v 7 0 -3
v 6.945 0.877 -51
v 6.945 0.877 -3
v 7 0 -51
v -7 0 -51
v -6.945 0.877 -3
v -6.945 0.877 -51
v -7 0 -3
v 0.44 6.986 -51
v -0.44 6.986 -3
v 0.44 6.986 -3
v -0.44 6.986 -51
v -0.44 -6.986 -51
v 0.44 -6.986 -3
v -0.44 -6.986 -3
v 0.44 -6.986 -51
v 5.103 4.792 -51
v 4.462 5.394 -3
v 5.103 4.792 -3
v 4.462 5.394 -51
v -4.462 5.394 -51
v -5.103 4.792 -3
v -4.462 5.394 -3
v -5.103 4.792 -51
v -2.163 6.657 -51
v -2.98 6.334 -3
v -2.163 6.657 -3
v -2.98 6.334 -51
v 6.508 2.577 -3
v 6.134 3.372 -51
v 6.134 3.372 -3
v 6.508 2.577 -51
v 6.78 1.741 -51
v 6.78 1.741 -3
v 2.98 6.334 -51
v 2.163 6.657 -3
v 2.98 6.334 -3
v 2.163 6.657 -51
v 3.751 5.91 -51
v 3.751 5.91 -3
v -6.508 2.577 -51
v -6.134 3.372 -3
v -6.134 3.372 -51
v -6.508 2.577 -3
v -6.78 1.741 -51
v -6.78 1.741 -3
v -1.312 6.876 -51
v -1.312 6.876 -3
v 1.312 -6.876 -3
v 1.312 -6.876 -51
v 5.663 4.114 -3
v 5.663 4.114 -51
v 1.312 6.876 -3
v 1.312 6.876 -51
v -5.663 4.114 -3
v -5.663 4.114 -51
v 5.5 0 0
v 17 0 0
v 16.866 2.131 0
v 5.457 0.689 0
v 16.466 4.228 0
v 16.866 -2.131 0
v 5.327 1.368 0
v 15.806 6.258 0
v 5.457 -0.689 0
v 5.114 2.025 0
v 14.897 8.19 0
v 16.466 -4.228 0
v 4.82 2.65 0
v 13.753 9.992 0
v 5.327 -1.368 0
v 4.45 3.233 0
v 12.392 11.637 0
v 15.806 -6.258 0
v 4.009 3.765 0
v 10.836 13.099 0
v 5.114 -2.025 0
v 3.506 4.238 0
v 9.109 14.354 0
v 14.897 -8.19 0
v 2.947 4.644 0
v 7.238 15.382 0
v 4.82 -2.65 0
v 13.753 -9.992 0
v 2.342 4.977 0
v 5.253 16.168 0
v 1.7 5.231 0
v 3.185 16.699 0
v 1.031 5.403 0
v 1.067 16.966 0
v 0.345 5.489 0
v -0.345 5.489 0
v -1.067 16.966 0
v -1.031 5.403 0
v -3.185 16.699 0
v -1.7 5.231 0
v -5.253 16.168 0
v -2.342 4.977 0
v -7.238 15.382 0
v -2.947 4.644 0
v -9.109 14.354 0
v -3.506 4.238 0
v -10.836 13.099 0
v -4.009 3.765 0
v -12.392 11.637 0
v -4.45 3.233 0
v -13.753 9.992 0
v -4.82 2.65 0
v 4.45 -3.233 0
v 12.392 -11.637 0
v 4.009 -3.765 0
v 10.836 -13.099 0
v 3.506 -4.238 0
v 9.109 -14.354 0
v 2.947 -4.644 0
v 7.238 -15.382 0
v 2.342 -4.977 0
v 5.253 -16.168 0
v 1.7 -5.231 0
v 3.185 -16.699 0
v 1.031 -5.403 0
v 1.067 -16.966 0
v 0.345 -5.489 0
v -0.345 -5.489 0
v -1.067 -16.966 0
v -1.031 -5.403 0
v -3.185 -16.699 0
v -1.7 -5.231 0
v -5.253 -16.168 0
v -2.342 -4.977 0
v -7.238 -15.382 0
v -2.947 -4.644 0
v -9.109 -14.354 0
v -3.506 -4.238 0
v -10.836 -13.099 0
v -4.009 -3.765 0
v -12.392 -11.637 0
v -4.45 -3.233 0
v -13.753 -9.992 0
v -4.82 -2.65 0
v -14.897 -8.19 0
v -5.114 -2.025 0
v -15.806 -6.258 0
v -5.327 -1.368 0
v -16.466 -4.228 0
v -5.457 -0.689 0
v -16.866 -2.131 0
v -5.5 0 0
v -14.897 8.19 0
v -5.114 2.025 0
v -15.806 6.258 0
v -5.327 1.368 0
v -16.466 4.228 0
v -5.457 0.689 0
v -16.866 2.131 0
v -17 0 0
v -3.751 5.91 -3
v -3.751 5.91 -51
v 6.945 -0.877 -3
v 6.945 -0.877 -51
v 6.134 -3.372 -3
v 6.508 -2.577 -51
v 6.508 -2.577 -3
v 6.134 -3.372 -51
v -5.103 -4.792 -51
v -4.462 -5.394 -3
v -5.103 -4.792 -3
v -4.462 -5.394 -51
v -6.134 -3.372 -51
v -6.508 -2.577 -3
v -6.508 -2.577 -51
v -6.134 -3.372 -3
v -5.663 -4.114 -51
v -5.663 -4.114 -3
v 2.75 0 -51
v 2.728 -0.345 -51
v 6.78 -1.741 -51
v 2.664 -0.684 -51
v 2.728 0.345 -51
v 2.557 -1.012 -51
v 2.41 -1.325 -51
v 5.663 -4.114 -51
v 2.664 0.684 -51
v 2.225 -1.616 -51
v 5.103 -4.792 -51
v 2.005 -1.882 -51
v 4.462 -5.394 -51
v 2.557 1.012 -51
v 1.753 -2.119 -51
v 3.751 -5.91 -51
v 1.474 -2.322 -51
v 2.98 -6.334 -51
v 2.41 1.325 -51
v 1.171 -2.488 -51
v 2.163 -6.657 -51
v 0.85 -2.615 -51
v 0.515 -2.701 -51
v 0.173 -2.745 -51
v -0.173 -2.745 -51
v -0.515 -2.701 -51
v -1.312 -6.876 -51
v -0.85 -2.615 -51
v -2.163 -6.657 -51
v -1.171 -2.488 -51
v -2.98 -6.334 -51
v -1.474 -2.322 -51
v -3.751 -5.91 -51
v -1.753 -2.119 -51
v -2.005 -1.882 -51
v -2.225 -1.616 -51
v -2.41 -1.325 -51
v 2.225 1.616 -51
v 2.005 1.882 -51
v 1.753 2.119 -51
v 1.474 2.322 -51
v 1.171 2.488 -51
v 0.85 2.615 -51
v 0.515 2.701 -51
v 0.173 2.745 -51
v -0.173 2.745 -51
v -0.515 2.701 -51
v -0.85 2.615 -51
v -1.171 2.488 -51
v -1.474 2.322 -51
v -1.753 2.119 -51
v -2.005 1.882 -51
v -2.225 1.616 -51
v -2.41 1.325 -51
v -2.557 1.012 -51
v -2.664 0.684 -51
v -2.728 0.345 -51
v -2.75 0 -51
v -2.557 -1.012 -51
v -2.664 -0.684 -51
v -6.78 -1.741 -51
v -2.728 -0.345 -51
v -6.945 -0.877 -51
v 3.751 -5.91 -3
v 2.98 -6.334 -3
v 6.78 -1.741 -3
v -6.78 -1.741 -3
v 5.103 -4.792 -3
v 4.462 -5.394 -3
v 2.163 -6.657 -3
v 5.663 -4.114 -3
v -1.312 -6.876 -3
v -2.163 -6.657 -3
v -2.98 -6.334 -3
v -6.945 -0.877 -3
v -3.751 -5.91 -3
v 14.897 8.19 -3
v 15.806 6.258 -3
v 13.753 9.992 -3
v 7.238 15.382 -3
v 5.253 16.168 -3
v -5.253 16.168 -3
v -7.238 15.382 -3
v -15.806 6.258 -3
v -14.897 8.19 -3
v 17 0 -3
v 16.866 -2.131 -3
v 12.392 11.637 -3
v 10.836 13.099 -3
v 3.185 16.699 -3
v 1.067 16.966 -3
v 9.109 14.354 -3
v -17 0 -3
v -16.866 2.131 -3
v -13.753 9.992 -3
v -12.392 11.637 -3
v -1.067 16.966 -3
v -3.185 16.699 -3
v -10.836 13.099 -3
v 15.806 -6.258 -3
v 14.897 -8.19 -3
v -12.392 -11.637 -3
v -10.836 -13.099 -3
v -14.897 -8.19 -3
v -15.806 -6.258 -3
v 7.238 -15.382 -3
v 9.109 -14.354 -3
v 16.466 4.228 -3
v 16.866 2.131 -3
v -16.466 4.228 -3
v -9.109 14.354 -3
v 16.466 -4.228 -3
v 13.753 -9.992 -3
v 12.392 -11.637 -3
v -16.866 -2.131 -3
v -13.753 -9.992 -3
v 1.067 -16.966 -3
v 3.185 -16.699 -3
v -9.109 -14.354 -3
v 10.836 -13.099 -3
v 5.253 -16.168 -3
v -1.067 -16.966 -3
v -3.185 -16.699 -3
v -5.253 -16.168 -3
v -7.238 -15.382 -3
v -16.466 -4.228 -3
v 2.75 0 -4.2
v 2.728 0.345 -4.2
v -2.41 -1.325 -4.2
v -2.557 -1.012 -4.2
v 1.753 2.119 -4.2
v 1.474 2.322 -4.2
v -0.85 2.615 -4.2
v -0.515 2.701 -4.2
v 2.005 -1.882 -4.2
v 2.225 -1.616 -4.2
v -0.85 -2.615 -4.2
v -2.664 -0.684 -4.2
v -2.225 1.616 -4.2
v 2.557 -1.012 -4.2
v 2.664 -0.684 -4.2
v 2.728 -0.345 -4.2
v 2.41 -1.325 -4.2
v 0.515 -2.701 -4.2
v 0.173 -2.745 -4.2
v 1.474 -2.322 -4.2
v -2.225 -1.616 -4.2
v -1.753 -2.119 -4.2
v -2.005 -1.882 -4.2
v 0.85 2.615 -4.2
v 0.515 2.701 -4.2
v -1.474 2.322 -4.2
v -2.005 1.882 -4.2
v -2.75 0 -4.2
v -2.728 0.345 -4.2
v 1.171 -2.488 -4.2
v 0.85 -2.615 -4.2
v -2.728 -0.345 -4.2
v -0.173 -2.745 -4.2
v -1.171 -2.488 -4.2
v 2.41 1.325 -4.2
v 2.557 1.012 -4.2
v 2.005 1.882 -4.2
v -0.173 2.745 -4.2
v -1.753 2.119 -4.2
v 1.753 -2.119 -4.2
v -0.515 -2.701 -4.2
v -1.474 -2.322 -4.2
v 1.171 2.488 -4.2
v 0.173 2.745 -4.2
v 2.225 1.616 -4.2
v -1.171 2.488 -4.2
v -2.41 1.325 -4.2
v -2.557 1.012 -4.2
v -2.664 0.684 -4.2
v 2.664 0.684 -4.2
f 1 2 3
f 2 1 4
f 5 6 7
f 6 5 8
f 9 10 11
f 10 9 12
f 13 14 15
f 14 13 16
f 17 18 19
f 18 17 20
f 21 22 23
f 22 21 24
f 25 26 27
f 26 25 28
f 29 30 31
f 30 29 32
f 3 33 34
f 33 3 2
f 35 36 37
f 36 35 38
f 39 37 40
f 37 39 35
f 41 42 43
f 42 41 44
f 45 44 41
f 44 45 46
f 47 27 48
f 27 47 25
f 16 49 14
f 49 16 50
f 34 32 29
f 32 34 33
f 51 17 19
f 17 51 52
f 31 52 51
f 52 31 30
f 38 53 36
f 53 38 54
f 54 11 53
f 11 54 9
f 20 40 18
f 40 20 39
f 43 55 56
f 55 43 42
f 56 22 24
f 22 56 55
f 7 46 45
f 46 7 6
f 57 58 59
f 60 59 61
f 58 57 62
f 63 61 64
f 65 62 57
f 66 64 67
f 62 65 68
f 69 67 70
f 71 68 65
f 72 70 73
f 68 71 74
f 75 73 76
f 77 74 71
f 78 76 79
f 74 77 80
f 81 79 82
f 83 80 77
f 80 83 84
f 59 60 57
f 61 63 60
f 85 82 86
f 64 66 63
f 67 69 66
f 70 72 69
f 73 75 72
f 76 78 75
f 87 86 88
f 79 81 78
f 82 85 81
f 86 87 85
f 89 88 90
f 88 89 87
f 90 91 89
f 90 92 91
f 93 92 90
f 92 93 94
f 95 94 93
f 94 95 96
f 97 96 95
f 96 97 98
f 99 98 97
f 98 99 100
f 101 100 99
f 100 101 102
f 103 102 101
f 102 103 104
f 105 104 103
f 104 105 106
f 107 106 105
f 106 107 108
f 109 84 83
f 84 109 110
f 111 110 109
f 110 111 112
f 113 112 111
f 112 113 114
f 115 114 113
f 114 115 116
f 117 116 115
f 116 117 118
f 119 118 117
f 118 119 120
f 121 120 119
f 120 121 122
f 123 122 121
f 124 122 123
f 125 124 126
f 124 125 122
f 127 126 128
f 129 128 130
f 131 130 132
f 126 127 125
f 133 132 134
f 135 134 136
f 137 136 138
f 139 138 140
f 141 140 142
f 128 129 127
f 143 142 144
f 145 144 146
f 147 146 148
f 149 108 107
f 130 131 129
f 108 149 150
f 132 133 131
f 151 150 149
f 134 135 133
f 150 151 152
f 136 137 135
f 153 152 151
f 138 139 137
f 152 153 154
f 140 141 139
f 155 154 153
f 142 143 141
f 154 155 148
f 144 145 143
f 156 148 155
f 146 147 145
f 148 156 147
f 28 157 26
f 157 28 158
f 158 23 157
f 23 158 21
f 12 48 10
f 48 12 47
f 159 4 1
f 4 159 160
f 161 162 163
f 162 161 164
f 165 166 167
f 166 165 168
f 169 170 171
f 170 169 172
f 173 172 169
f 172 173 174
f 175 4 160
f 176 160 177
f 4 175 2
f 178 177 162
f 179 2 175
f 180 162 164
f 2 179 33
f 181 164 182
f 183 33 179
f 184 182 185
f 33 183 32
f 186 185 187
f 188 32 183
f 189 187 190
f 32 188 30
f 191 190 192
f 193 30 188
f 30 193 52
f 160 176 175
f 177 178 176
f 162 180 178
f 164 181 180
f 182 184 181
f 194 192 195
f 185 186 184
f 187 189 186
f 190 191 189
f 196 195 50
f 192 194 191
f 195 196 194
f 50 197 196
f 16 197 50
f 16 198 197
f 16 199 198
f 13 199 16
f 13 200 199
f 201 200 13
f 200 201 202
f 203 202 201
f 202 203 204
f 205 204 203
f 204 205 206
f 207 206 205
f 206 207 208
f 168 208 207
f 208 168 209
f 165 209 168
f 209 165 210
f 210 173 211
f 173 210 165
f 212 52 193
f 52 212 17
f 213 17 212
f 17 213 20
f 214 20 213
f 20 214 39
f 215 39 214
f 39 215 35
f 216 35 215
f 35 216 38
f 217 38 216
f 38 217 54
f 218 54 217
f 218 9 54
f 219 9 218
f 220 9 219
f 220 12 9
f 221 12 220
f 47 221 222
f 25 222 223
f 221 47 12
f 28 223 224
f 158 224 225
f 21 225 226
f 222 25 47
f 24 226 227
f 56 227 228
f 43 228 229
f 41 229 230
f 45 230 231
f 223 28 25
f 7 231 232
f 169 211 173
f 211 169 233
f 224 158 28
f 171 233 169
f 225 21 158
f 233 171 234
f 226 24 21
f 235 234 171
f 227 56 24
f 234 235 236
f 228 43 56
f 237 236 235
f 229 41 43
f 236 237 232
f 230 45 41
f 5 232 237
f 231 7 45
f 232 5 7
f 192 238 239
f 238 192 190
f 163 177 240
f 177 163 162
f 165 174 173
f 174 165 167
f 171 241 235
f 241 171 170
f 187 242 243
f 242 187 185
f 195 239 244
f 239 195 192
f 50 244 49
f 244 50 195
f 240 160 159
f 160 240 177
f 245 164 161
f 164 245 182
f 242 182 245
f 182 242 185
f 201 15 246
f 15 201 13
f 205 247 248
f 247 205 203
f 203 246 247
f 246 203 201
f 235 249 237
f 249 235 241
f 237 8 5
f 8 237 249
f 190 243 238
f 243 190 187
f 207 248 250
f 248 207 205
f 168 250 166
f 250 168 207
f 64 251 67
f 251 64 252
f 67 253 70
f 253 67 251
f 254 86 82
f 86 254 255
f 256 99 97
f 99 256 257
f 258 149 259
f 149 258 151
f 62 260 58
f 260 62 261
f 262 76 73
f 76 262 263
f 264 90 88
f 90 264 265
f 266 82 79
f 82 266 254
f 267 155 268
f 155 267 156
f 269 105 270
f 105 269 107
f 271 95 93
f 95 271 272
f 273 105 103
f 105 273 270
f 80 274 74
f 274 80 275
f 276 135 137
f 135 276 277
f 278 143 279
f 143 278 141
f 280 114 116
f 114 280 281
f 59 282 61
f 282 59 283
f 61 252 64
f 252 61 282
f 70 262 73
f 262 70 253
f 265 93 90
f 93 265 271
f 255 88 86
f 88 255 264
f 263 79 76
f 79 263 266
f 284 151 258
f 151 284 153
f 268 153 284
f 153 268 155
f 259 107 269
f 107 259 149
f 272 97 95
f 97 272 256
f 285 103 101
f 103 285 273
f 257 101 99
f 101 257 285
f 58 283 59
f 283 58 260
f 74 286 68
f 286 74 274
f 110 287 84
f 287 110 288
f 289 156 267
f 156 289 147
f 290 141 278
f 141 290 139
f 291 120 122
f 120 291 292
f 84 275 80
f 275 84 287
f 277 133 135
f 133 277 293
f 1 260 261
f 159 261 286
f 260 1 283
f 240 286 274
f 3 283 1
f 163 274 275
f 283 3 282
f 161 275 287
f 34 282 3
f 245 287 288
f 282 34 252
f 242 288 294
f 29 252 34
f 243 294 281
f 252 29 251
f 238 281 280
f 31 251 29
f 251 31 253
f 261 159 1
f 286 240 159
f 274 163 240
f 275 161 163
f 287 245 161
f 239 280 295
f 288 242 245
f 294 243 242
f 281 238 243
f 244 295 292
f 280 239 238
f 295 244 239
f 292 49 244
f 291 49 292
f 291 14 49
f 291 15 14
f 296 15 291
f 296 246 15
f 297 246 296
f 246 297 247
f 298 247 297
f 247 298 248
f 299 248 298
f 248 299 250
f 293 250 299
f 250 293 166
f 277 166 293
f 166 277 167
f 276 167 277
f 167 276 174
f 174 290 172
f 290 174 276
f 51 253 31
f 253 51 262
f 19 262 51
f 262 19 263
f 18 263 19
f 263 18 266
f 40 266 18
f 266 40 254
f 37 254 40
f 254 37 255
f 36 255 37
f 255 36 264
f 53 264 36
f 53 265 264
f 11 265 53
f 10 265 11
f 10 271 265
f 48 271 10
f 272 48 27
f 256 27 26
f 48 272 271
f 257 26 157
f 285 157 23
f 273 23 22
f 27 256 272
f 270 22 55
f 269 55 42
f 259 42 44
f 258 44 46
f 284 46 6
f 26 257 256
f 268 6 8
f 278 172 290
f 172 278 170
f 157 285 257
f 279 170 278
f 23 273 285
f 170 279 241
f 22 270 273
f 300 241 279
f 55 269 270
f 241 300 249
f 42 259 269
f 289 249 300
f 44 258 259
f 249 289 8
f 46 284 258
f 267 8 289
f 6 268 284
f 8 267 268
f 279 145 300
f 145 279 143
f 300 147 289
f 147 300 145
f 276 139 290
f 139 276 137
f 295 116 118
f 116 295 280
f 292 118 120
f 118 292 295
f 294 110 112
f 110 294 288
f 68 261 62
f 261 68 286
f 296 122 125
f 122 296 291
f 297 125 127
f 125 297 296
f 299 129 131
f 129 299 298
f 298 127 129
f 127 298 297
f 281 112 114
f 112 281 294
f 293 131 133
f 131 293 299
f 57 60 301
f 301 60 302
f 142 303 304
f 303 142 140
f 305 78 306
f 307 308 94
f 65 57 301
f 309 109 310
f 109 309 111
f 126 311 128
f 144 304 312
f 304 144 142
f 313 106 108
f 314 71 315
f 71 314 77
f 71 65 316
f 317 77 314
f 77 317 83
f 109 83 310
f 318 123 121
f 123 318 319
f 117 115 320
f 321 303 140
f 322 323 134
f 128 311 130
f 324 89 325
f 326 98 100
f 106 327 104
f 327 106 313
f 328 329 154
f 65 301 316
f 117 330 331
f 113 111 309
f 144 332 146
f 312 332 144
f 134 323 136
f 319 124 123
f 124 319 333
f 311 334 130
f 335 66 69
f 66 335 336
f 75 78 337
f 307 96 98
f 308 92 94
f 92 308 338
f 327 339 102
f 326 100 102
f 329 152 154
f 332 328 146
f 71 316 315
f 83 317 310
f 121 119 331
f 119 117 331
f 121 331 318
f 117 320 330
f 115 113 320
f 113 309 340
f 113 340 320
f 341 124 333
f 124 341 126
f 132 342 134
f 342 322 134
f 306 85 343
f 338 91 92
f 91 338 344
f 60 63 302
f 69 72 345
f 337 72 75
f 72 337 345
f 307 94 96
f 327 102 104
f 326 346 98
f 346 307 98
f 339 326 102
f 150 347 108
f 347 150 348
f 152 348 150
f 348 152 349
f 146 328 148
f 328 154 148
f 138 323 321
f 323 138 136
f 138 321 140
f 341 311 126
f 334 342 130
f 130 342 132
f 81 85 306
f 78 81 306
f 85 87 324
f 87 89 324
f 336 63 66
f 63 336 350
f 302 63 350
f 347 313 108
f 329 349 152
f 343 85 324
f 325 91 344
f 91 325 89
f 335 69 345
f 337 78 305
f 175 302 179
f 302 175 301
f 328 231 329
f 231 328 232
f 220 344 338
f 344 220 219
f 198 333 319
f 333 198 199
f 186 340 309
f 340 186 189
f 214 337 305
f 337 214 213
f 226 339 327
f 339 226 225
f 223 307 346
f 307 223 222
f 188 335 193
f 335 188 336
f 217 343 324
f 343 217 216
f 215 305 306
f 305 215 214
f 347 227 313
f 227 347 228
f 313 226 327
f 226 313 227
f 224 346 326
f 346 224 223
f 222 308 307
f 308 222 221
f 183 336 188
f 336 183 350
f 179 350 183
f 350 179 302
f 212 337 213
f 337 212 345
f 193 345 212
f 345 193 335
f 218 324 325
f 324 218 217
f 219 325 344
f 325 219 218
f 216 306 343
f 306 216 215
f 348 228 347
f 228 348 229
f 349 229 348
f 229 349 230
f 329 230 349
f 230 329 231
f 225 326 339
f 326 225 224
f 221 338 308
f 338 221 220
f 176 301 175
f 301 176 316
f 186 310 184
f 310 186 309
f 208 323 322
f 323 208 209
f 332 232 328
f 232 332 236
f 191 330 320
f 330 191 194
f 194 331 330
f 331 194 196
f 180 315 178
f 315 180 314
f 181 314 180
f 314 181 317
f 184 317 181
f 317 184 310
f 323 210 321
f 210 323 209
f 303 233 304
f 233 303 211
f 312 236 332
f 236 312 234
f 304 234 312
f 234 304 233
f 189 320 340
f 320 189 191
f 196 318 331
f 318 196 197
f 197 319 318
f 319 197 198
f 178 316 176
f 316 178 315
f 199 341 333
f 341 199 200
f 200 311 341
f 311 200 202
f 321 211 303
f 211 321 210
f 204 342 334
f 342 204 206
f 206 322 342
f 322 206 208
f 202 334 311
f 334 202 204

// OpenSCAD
$fn = 50;


difference() {
	union() {
		translate(v = [0, 0, -51.0000000000]) {
			cylinder(h = 51, r = 7.0000000000);
		}
		translate(v = [0, 0, -3.0000000000]) {
			cylinder(h = 3, r = 17.0000000000);
		}
	}
	union() {
		translate(v = [0, 0, 0]) {
			rotate(a = [0, 0, 0]) {
				difference() {
					union() {
						#translate(v = [0, 0, -51.0000000000]) {
							cylinder(h = 51, r = 2.2500000000);
						}
						#translate(v = [0, 0, -4.2000000000]) {
							cylinder(h = 4.2000000000, r = 7.0000000000, r1 = 2.7500000000, r2 = 5.5000000000);
						}
						#translate(v = [0, 0, -51.0000000000]) {
							cylinder(h = 51, r = 2.7500000000);
						}
						#translate(v = [0, 0, -51.0000000000]) {
							cylinder(h = 51, r = 2.2500000000);
						}
					}
					union();
				}
			}
		}
	}
}
